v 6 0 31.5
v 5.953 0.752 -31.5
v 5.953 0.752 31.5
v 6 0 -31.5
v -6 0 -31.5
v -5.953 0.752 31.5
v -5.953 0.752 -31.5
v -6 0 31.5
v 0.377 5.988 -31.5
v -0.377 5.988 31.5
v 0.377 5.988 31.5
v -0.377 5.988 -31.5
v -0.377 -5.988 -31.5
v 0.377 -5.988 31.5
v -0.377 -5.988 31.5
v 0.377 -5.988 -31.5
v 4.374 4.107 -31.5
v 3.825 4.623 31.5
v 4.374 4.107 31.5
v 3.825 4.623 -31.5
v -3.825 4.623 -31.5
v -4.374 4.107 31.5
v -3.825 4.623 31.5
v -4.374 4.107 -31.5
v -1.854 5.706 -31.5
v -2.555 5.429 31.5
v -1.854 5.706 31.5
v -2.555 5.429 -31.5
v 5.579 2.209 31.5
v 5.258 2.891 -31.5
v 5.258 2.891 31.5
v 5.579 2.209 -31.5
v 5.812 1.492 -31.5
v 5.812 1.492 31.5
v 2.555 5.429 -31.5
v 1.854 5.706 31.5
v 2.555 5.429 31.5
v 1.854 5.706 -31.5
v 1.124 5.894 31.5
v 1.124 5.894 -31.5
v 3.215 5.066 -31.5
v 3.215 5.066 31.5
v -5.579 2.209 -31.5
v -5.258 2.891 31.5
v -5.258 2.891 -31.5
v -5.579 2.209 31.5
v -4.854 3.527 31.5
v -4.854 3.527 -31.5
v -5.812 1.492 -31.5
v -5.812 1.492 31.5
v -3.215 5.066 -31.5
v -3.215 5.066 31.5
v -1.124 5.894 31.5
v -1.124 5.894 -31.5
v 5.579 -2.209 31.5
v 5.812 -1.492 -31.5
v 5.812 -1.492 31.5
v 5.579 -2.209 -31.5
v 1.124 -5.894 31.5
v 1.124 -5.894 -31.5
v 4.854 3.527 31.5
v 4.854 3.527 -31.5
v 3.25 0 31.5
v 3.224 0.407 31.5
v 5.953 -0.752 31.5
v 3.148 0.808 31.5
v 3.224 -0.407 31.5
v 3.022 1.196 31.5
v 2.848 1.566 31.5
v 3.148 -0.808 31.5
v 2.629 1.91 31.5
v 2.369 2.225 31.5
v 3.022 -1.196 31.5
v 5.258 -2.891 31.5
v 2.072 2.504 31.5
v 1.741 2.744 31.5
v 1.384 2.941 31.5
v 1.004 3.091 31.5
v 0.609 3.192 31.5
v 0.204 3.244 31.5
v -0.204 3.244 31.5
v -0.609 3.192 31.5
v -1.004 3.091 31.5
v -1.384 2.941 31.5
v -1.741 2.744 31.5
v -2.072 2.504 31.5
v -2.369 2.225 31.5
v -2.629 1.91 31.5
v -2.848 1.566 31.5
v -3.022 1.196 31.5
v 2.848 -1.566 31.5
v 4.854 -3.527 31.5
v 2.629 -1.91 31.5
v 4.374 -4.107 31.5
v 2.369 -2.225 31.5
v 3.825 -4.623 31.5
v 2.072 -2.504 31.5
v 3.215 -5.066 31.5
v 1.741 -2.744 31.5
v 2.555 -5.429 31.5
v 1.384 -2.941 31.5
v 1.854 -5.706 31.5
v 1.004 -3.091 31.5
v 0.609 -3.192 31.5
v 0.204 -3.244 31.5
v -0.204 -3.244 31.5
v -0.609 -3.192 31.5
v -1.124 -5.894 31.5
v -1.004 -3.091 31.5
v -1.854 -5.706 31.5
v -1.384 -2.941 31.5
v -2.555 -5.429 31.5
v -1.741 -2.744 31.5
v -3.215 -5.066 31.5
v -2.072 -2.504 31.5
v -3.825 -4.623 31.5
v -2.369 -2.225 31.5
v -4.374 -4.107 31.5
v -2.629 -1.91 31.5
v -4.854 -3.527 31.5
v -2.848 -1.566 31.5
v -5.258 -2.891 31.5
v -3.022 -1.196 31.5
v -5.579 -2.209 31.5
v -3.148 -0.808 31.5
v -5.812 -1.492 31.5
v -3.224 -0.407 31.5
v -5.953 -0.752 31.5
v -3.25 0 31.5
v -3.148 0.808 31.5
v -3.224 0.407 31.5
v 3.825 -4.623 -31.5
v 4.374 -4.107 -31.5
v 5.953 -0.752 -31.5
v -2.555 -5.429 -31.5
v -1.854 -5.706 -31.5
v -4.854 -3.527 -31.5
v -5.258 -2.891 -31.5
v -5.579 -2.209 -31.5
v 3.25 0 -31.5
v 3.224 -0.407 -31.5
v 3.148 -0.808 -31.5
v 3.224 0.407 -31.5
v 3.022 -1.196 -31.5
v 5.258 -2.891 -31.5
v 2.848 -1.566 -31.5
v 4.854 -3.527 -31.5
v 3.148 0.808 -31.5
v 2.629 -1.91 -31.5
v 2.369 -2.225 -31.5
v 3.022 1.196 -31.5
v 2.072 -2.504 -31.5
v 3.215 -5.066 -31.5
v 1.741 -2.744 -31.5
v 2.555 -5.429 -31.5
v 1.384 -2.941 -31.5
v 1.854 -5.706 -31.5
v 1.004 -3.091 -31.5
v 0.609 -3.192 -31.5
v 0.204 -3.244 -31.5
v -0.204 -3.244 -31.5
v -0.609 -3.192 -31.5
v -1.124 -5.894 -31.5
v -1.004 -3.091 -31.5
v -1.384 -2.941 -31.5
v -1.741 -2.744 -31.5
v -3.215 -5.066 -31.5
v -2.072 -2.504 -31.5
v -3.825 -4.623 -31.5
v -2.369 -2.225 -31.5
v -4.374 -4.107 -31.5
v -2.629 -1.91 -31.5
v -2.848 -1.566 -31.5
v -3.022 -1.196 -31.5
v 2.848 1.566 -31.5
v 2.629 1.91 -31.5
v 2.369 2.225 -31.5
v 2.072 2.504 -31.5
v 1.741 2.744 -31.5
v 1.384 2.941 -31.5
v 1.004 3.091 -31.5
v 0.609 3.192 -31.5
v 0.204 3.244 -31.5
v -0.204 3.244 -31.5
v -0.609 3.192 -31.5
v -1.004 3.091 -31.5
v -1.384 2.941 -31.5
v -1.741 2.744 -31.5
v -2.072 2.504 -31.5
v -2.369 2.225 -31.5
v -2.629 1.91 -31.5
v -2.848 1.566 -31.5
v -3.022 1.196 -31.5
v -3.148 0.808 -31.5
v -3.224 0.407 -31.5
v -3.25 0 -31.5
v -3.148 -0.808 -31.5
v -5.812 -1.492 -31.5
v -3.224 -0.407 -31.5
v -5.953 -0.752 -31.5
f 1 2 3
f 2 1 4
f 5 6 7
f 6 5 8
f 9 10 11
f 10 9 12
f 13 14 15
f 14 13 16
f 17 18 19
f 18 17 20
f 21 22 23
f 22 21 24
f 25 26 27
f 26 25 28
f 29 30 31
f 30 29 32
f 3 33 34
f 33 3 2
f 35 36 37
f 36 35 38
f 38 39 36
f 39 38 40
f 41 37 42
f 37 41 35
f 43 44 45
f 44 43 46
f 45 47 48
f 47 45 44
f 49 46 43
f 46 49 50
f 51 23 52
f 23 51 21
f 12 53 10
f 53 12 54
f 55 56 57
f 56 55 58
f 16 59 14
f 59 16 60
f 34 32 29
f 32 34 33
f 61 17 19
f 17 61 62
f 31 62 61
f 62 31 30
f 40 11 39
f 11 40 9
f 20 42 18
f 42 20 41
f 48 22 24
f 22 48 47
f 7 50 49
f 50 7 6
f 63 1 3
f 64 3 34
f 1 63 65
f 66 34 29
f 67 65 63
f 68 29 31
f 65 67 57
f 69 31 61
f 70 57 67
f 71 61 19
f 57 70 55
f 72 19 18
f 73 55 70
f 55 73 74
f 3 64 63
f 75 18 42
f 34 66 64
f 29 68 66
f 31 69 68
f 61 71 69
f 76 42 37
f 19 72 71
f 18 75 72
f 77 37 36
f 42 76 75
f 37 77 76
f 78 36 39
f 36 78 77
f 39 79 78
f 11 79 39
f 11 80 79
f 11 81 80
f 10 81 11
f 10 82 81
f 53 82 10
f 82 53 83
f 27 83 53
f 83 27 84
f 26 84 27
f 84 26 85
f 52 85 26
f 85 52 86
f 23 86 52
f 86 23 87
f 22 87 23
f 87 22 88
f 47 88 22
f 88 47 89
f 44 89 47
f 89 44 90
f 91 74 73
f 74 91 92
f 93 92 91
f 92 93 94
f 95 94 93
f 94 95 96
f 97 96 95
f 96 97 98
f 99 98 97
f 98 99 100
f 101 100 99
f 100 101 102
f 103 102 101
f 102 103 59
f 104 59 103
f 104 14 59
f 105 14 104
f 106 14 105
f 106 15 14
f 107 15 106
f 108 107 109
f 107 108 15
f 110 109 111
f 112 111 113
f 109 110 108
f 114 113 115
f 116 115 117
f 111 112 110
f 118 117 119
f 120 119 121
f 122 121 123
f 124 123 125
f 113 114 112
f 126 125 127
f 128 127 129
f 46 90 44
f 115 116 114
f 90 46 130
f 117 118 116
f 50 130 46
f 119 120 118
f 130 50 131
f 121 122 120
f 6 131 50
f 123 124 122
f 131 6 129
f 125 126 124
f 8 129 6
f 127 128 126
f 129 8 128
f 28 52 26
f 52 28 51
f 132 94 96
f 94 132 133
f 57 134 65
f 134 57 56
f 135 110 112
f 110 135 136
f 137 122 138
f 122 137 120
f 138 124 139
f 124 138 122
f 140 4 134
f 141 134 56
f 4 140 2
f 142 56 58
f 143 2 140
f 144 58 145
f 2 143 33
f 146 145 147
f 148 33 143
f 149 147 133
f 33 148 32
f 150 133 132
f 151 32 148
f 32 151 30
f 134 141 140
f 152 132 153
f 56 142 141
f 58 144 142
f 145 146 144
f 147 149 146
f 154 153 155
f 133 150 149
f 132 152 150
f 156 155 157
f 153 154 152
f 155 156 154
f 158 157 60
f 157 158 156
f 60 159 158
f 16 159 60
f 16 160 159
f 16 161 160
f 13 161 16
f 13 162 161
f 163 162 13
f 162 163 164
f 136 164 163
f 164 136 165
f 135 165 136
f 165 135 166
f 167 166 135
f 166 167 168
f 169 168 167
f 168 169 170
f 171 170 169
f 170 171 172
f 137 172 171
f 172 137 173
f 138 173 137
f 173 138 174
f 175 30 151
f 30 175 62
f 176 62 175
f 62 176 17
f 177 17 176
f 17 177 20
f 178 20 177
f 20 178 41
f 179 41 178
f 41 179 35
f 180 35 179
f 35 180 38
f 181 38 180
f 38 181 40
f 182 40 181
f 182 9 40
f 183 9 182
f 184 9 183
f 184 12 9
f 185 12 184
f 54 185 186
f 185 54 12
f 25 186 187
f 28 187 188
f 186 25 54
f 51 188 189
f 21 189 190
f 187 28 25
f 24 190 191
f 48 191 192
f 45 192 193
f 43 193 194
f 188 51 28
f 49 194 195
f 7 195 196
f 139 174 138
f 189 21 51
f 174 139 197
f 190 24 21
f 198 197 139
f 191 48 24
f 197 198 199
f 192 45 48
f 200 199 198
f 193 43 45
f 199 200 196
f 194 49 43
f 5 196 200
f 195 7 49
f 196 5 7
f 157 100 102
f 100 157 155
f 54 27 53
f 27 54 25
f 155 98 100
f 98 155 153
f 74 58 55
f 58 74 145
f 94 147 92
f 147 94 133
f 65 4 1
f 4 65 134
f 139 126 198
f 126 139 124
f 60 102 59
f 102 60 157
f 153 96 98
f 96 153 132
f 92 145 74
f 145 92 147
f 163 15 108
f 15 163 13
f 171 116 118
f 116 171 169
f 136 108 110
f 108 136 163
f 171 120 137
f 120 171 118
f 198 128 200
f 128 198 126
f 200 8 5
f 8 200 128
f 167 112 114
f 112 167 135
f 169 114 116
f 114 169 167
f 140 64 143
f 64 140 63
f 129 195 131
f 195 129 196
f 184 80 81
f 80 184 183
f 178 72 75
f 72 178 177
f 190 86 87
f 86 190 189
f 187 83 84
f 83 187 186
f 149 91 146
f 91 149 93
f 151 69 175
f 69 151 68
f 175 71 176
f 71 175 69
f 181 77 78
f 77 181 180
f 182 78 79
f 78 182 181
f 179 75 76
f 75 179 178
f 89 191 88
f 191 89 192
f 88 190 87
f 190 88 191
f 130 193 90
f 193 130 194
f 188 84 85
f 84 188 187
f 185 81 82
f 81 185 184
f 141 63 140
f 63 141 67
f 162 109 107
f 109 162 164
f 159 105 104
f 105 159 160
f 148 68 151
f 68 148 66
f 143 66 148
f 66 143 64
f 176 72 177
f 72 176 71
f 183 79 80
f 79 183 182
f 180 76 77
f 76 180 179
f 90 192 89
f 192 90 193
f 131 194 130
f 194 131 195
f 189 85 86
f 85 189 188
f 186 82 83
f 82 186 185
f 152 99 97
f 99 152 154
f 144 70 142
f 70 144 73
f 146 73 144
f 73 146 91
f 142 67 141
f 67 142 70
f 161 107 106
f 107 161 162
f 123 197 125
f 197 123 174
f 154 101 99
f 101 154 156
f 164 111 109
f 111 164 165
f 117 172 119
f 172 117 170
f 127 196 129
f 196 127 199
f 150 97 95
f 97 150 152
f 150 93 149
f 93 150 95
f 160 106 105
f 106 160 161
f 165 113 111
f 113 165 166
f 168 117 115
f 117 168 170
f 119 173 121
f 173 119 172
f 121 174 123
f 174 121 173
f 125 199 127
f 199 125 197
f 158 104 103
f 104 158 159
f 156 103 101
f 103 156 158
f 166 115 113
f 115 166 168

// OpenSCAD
$fn = 50;


difference() {
	union() {
		translate(v = [0, 0, -31.5000000000]) {
			cylinder(h = 63, r = 6.0000000000);
		}
	}
	union() {
		translate(v = [0, 0, -100.0000000000]) {
			cylinder(h = 200, r = 3.2500000000);
		}
	}
}
